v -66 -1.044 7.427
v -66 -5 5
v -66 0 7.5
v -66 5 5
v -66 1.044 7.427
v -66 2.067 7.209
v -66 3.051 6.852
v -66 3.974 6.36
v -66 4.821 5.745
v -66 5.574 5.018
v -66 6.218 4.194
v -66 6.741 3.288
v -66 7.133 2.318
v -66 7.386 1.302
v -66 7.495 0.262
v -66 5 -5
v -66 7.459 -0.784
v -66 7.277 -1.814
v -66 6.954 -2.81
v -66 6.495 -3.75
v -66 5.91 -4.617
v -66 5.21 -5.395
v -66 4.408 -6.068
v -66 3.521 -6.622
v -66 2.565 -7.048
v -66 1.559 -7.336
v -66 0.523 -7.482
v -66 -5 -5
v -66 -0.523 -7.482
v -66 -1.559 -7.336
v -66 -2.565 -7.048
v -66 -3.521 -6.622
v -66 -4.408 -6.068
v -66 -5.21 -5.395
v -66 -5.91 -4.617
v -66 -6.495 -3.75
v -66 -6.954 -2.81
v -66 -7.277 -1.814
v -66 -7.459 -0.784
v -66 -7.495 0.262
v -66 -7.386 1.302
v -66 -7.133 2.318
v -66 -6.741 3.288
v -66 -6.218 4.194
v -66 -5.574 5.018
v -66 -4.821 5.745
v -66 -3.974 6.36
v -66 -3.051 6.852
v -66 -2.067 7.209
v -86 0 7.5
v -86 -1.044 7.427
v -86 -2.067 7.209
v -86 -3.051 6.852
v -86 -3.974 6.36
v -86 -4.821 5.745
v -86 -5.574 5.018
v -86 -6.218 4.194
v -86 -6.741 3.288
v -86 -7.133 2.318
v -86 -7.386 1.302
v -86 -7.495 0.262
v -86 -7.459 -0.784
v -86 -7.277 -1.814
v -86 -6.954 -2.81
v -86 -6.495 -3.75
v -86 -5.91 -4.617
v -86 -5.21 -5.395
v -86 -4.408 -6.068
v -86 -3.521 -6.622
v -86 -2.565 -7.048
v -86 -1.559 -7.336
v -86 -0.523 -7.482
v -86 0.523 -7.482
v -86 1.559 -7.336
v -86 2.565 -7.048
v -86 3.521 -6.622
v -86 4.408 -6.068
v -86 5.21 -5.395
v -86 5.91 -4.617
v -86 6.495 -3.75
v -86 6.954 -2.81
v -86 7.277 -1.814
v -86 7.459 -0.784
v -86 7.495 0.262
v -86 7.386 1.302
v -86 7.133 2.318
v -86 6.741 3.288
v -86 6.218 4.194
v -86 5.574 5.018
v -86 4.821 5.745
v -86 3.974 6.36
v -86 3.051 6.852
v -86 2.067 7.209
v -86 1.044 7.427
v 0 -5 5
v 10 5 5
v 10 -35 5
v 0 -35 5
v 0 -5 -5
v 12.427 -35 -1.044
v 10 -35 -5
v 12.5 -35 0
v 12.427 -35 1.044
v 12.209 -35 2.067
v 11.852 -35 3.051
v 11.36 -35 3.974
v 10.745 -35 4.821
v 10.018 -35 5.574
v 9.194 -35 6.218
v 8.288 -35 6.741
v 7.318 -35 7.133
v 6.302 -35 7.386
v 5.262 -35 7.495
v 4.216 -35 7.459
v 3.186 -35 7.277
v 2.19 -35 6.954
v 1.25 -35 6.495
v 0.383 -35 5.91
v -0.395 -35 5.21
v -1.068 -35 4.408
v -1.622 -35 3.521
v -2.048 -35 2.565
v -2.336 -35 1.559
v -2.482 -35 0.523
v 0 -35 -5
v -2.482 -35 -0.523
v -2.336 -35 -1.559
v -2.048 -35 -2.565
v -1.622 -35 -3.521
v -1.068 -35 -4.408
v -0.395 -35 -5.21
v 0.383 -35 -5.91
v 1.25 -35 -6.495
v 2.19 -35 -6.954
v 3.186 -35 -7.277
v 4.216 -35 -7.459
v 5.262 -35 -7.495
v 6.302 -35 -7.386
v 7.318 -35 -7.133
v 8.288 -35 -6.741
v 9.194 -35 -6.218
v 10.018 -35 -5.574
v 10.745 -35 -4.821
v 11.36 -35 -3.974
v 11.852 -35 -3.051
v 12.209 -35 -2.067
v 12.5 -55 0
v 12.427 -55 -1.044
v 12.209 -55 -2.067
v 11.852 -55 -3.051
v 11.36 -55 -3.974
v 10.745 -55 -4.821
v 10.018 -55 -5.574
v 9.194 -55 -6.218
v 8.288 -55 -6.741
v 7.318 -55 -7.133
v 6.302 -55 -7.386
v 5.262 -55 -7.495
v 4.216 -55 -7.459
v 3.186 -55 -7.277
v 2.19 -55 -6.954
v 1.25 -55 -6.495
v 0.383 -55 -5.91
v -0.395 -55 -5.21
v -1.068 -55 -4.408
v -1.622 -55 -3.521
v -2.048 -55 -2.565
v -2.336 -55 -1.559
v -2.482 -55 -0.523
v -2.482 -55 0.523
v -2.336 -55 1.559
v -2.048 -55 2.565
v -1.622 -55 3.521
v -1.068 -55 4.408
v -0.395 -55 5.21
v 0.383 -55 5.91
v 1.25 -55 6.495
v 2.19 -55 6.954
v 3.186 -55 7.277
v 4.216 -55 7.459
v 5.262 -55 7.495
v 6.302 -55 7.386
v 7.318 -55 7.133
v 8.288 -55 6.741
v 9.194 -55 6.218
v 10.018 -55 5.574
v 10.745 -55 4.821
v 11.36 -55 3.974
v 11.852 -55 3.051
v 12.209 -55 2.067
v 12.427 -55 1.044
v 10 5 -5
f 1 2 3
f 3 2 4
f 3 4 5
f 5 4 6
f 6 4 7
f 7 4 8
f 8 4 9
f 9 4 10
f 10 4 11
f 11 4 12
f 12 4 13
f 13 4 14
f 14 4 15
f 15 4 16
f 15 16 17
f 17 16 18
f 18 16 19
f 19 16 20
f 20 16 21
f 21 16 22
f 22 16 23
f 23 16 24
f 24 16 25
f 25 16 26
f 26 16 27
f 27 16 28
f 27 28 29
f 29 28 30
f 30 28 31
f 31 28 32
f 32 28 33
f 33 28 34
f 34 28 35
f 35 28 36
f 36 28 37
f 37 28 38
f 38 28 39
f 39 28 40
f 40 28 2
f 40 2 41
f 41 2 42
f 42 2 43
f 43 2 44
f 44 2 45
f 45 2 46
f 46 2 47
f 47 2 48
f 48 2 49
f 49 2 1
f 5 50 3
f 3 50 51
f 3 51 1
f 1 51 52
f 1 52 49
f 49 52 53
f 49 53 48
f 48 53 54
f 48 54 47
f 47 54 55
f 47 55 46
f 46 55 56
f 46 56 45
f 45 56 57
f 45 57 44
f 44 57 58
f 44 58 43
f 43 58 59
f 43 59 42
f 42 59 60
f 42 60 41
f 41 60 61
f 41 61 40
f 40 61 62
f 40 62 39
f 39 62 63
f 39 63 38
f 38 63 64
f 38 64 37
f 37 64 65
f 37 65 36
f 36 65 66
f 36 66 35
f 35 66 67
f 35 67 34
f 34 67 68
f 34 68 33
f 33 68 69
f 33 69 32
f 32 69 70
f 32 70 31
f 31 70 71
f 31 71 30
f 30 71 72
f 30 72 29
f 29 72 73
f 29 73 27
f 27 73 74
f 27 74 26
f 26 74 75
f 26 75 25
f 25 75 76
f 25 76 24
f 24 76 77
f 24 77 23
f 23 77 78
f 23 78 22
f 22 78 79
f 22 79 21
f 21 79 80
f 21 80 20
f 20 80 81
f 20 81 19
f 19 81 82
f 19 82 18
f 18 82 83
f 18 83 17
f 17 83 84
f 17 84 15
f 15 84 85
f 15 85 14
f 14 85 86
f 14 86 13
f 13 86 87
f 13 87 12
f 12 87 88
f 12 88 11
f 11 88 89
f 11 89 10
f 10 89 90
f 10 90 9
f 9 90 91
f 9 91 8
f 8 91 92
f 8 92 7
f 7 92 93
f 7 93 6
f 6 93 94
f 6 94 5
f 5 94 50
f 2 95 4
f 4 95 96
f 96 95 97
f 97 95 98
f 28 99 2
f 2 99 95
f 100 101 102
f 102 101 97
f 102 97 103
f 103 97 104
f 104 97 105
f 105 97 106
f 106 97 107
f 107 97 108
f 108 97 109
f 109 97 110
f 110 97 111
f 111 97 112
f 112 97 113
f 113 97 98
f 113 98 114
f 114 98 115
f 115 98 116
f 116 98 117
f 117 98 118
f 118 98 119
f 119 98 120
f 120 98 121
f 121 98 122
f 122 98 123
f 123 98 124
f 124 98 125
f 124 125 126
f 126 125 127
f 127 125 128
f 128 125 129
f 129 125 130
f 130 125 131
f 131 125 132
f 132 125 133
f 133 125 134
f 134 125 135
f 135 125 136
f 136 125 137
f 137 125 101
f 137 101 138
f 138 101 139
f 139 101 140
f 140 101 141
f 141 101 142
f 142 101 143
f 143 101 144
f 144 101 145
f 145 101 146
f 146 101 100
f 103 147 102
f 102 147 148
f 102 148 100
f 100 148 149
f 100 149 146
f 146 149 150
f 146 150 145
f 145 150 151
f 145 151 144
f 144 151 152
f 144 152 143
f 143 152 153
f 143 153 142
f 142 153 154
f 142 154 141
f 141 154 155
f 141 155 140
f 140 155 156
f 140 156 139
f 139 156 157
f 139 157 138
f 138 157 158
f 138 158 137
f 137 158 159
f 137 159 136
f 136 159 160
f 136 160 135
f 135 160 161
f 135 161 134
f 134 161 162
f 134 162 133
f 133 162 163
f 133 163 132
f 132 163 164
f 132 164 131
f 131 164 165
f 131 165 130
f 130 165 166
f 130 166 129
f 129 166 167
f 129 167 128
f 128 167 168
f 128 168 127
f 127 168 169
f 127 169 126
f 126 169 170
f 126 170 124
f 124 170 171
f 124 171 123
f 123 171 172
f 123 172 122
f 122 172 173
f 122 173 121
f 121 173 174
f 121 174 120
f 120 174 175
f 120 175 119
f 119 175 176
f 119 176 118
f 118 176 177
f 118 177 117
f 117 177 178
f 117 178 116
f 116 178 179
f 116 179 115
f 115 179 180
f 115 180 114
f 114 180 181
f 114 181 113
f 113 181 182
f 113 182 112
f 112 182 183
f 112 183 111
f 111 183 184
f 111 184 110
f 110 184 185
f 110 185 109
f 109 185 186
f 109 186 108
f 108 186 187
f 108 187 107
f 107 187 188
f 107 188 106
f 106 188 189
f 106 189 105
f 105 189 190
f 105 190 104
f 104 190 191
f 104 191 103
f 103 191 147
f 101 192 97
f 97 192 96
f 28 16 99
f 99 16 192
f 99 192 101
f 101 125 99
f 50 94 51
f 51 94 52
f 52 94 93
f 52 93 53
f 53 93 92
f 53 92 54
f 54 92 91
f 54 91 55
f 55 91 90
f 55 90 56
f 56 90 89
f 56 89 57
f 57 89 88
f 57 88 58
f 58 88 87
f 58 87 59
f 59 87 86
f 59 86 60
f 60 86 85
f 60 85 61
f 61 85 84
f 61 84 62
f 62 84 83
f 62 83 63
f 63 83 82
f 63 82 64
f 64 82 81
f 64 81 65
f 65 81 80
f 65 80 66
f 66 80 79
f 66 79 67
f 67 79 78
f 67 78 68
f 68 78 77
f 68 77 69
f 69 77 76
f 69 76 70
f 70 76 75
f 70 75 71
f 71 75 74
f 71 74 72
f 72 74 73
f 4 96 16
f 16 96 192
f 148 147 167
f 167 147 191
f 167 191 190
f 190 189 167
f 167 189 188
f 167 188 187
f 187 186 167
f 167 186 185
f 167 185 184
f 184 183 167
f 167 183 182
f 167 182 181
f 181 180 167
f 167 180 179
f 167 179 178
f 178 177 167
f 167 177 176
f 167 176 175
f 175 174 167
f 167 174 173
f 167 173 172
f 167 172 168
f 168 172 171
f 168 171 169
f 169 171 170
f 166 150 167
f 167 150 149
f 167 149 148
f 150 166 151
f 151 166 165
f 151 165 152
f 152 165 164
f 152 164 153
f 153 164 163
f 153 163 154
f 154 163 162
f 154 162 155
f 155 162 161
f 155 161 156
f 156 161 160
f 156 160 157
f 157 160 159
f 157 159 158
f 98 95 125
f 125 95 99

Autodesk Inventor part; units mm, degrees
ref_plane "YZ Plane" through (0, 0, 0) normal (1, 0, 0) x (0, 1, 0)
ref_plane "XZ Plane" through (0, 0, 0) normal (0, 1, 0) x (-1, 0, 0)
ref_plane "XY Plane" through (0, 0, 0) normal (0, 0, 1) x (1, 0, 0)
sketch "スケッチ1" plane through (0, 0, 0) normal (0, 0, 1) x (1, 0, 0)
  line L0 (-86, -5) -> (-86, 5)
  line L1 (-86, 5) -> (10, 5)
  line L2 (10, 5) -> (10, -55)
  line L3 (10, -55) -> (0, -55)
  line L4 (0, -55) -> (0, -5)
  line L5 (0, -5) -> (-86, -5)
  point P0 (0, 0)
  dimension "d0" = 96
  dimension "d1" = 60
  dimension "d2" = 10
  dimension "d3" = 10
  dimension "d4" = 10
  dimension "d6" = 5
extrude "押し出し1" add sketch "スケッチ1" along normal blind 5 and the other way blind 5
sketch "スケッチ2" plane through (0, -55, 5) normal (0, -1, 0) x (1, 0, 0)
  circle A0 centre (5, -5) radius 7.5
  line L0 (0, -10) -> (0, 0) projected
  point P0 (0, -5)
  point P1 (0, -5)
  dimension "d11" = 15
  dimension "d12" = 5
  dimension "d13" = 5
extrude "押し出し2" add sketch "スケッチ2" against normal blind 20
sketch "スケッチ3" plane through (-86, -5, 5) normal (-1, 0, 0) x (0, 0, 1)
  circle A0 centre (-5, 5) radius 7.5
  point P0 (-5, 5)
  dimension "d16" = 15
extrude "押し出し3" add sketch "スケッチ3" against normal blind 20
properties part number "r_link_wr2wp"
